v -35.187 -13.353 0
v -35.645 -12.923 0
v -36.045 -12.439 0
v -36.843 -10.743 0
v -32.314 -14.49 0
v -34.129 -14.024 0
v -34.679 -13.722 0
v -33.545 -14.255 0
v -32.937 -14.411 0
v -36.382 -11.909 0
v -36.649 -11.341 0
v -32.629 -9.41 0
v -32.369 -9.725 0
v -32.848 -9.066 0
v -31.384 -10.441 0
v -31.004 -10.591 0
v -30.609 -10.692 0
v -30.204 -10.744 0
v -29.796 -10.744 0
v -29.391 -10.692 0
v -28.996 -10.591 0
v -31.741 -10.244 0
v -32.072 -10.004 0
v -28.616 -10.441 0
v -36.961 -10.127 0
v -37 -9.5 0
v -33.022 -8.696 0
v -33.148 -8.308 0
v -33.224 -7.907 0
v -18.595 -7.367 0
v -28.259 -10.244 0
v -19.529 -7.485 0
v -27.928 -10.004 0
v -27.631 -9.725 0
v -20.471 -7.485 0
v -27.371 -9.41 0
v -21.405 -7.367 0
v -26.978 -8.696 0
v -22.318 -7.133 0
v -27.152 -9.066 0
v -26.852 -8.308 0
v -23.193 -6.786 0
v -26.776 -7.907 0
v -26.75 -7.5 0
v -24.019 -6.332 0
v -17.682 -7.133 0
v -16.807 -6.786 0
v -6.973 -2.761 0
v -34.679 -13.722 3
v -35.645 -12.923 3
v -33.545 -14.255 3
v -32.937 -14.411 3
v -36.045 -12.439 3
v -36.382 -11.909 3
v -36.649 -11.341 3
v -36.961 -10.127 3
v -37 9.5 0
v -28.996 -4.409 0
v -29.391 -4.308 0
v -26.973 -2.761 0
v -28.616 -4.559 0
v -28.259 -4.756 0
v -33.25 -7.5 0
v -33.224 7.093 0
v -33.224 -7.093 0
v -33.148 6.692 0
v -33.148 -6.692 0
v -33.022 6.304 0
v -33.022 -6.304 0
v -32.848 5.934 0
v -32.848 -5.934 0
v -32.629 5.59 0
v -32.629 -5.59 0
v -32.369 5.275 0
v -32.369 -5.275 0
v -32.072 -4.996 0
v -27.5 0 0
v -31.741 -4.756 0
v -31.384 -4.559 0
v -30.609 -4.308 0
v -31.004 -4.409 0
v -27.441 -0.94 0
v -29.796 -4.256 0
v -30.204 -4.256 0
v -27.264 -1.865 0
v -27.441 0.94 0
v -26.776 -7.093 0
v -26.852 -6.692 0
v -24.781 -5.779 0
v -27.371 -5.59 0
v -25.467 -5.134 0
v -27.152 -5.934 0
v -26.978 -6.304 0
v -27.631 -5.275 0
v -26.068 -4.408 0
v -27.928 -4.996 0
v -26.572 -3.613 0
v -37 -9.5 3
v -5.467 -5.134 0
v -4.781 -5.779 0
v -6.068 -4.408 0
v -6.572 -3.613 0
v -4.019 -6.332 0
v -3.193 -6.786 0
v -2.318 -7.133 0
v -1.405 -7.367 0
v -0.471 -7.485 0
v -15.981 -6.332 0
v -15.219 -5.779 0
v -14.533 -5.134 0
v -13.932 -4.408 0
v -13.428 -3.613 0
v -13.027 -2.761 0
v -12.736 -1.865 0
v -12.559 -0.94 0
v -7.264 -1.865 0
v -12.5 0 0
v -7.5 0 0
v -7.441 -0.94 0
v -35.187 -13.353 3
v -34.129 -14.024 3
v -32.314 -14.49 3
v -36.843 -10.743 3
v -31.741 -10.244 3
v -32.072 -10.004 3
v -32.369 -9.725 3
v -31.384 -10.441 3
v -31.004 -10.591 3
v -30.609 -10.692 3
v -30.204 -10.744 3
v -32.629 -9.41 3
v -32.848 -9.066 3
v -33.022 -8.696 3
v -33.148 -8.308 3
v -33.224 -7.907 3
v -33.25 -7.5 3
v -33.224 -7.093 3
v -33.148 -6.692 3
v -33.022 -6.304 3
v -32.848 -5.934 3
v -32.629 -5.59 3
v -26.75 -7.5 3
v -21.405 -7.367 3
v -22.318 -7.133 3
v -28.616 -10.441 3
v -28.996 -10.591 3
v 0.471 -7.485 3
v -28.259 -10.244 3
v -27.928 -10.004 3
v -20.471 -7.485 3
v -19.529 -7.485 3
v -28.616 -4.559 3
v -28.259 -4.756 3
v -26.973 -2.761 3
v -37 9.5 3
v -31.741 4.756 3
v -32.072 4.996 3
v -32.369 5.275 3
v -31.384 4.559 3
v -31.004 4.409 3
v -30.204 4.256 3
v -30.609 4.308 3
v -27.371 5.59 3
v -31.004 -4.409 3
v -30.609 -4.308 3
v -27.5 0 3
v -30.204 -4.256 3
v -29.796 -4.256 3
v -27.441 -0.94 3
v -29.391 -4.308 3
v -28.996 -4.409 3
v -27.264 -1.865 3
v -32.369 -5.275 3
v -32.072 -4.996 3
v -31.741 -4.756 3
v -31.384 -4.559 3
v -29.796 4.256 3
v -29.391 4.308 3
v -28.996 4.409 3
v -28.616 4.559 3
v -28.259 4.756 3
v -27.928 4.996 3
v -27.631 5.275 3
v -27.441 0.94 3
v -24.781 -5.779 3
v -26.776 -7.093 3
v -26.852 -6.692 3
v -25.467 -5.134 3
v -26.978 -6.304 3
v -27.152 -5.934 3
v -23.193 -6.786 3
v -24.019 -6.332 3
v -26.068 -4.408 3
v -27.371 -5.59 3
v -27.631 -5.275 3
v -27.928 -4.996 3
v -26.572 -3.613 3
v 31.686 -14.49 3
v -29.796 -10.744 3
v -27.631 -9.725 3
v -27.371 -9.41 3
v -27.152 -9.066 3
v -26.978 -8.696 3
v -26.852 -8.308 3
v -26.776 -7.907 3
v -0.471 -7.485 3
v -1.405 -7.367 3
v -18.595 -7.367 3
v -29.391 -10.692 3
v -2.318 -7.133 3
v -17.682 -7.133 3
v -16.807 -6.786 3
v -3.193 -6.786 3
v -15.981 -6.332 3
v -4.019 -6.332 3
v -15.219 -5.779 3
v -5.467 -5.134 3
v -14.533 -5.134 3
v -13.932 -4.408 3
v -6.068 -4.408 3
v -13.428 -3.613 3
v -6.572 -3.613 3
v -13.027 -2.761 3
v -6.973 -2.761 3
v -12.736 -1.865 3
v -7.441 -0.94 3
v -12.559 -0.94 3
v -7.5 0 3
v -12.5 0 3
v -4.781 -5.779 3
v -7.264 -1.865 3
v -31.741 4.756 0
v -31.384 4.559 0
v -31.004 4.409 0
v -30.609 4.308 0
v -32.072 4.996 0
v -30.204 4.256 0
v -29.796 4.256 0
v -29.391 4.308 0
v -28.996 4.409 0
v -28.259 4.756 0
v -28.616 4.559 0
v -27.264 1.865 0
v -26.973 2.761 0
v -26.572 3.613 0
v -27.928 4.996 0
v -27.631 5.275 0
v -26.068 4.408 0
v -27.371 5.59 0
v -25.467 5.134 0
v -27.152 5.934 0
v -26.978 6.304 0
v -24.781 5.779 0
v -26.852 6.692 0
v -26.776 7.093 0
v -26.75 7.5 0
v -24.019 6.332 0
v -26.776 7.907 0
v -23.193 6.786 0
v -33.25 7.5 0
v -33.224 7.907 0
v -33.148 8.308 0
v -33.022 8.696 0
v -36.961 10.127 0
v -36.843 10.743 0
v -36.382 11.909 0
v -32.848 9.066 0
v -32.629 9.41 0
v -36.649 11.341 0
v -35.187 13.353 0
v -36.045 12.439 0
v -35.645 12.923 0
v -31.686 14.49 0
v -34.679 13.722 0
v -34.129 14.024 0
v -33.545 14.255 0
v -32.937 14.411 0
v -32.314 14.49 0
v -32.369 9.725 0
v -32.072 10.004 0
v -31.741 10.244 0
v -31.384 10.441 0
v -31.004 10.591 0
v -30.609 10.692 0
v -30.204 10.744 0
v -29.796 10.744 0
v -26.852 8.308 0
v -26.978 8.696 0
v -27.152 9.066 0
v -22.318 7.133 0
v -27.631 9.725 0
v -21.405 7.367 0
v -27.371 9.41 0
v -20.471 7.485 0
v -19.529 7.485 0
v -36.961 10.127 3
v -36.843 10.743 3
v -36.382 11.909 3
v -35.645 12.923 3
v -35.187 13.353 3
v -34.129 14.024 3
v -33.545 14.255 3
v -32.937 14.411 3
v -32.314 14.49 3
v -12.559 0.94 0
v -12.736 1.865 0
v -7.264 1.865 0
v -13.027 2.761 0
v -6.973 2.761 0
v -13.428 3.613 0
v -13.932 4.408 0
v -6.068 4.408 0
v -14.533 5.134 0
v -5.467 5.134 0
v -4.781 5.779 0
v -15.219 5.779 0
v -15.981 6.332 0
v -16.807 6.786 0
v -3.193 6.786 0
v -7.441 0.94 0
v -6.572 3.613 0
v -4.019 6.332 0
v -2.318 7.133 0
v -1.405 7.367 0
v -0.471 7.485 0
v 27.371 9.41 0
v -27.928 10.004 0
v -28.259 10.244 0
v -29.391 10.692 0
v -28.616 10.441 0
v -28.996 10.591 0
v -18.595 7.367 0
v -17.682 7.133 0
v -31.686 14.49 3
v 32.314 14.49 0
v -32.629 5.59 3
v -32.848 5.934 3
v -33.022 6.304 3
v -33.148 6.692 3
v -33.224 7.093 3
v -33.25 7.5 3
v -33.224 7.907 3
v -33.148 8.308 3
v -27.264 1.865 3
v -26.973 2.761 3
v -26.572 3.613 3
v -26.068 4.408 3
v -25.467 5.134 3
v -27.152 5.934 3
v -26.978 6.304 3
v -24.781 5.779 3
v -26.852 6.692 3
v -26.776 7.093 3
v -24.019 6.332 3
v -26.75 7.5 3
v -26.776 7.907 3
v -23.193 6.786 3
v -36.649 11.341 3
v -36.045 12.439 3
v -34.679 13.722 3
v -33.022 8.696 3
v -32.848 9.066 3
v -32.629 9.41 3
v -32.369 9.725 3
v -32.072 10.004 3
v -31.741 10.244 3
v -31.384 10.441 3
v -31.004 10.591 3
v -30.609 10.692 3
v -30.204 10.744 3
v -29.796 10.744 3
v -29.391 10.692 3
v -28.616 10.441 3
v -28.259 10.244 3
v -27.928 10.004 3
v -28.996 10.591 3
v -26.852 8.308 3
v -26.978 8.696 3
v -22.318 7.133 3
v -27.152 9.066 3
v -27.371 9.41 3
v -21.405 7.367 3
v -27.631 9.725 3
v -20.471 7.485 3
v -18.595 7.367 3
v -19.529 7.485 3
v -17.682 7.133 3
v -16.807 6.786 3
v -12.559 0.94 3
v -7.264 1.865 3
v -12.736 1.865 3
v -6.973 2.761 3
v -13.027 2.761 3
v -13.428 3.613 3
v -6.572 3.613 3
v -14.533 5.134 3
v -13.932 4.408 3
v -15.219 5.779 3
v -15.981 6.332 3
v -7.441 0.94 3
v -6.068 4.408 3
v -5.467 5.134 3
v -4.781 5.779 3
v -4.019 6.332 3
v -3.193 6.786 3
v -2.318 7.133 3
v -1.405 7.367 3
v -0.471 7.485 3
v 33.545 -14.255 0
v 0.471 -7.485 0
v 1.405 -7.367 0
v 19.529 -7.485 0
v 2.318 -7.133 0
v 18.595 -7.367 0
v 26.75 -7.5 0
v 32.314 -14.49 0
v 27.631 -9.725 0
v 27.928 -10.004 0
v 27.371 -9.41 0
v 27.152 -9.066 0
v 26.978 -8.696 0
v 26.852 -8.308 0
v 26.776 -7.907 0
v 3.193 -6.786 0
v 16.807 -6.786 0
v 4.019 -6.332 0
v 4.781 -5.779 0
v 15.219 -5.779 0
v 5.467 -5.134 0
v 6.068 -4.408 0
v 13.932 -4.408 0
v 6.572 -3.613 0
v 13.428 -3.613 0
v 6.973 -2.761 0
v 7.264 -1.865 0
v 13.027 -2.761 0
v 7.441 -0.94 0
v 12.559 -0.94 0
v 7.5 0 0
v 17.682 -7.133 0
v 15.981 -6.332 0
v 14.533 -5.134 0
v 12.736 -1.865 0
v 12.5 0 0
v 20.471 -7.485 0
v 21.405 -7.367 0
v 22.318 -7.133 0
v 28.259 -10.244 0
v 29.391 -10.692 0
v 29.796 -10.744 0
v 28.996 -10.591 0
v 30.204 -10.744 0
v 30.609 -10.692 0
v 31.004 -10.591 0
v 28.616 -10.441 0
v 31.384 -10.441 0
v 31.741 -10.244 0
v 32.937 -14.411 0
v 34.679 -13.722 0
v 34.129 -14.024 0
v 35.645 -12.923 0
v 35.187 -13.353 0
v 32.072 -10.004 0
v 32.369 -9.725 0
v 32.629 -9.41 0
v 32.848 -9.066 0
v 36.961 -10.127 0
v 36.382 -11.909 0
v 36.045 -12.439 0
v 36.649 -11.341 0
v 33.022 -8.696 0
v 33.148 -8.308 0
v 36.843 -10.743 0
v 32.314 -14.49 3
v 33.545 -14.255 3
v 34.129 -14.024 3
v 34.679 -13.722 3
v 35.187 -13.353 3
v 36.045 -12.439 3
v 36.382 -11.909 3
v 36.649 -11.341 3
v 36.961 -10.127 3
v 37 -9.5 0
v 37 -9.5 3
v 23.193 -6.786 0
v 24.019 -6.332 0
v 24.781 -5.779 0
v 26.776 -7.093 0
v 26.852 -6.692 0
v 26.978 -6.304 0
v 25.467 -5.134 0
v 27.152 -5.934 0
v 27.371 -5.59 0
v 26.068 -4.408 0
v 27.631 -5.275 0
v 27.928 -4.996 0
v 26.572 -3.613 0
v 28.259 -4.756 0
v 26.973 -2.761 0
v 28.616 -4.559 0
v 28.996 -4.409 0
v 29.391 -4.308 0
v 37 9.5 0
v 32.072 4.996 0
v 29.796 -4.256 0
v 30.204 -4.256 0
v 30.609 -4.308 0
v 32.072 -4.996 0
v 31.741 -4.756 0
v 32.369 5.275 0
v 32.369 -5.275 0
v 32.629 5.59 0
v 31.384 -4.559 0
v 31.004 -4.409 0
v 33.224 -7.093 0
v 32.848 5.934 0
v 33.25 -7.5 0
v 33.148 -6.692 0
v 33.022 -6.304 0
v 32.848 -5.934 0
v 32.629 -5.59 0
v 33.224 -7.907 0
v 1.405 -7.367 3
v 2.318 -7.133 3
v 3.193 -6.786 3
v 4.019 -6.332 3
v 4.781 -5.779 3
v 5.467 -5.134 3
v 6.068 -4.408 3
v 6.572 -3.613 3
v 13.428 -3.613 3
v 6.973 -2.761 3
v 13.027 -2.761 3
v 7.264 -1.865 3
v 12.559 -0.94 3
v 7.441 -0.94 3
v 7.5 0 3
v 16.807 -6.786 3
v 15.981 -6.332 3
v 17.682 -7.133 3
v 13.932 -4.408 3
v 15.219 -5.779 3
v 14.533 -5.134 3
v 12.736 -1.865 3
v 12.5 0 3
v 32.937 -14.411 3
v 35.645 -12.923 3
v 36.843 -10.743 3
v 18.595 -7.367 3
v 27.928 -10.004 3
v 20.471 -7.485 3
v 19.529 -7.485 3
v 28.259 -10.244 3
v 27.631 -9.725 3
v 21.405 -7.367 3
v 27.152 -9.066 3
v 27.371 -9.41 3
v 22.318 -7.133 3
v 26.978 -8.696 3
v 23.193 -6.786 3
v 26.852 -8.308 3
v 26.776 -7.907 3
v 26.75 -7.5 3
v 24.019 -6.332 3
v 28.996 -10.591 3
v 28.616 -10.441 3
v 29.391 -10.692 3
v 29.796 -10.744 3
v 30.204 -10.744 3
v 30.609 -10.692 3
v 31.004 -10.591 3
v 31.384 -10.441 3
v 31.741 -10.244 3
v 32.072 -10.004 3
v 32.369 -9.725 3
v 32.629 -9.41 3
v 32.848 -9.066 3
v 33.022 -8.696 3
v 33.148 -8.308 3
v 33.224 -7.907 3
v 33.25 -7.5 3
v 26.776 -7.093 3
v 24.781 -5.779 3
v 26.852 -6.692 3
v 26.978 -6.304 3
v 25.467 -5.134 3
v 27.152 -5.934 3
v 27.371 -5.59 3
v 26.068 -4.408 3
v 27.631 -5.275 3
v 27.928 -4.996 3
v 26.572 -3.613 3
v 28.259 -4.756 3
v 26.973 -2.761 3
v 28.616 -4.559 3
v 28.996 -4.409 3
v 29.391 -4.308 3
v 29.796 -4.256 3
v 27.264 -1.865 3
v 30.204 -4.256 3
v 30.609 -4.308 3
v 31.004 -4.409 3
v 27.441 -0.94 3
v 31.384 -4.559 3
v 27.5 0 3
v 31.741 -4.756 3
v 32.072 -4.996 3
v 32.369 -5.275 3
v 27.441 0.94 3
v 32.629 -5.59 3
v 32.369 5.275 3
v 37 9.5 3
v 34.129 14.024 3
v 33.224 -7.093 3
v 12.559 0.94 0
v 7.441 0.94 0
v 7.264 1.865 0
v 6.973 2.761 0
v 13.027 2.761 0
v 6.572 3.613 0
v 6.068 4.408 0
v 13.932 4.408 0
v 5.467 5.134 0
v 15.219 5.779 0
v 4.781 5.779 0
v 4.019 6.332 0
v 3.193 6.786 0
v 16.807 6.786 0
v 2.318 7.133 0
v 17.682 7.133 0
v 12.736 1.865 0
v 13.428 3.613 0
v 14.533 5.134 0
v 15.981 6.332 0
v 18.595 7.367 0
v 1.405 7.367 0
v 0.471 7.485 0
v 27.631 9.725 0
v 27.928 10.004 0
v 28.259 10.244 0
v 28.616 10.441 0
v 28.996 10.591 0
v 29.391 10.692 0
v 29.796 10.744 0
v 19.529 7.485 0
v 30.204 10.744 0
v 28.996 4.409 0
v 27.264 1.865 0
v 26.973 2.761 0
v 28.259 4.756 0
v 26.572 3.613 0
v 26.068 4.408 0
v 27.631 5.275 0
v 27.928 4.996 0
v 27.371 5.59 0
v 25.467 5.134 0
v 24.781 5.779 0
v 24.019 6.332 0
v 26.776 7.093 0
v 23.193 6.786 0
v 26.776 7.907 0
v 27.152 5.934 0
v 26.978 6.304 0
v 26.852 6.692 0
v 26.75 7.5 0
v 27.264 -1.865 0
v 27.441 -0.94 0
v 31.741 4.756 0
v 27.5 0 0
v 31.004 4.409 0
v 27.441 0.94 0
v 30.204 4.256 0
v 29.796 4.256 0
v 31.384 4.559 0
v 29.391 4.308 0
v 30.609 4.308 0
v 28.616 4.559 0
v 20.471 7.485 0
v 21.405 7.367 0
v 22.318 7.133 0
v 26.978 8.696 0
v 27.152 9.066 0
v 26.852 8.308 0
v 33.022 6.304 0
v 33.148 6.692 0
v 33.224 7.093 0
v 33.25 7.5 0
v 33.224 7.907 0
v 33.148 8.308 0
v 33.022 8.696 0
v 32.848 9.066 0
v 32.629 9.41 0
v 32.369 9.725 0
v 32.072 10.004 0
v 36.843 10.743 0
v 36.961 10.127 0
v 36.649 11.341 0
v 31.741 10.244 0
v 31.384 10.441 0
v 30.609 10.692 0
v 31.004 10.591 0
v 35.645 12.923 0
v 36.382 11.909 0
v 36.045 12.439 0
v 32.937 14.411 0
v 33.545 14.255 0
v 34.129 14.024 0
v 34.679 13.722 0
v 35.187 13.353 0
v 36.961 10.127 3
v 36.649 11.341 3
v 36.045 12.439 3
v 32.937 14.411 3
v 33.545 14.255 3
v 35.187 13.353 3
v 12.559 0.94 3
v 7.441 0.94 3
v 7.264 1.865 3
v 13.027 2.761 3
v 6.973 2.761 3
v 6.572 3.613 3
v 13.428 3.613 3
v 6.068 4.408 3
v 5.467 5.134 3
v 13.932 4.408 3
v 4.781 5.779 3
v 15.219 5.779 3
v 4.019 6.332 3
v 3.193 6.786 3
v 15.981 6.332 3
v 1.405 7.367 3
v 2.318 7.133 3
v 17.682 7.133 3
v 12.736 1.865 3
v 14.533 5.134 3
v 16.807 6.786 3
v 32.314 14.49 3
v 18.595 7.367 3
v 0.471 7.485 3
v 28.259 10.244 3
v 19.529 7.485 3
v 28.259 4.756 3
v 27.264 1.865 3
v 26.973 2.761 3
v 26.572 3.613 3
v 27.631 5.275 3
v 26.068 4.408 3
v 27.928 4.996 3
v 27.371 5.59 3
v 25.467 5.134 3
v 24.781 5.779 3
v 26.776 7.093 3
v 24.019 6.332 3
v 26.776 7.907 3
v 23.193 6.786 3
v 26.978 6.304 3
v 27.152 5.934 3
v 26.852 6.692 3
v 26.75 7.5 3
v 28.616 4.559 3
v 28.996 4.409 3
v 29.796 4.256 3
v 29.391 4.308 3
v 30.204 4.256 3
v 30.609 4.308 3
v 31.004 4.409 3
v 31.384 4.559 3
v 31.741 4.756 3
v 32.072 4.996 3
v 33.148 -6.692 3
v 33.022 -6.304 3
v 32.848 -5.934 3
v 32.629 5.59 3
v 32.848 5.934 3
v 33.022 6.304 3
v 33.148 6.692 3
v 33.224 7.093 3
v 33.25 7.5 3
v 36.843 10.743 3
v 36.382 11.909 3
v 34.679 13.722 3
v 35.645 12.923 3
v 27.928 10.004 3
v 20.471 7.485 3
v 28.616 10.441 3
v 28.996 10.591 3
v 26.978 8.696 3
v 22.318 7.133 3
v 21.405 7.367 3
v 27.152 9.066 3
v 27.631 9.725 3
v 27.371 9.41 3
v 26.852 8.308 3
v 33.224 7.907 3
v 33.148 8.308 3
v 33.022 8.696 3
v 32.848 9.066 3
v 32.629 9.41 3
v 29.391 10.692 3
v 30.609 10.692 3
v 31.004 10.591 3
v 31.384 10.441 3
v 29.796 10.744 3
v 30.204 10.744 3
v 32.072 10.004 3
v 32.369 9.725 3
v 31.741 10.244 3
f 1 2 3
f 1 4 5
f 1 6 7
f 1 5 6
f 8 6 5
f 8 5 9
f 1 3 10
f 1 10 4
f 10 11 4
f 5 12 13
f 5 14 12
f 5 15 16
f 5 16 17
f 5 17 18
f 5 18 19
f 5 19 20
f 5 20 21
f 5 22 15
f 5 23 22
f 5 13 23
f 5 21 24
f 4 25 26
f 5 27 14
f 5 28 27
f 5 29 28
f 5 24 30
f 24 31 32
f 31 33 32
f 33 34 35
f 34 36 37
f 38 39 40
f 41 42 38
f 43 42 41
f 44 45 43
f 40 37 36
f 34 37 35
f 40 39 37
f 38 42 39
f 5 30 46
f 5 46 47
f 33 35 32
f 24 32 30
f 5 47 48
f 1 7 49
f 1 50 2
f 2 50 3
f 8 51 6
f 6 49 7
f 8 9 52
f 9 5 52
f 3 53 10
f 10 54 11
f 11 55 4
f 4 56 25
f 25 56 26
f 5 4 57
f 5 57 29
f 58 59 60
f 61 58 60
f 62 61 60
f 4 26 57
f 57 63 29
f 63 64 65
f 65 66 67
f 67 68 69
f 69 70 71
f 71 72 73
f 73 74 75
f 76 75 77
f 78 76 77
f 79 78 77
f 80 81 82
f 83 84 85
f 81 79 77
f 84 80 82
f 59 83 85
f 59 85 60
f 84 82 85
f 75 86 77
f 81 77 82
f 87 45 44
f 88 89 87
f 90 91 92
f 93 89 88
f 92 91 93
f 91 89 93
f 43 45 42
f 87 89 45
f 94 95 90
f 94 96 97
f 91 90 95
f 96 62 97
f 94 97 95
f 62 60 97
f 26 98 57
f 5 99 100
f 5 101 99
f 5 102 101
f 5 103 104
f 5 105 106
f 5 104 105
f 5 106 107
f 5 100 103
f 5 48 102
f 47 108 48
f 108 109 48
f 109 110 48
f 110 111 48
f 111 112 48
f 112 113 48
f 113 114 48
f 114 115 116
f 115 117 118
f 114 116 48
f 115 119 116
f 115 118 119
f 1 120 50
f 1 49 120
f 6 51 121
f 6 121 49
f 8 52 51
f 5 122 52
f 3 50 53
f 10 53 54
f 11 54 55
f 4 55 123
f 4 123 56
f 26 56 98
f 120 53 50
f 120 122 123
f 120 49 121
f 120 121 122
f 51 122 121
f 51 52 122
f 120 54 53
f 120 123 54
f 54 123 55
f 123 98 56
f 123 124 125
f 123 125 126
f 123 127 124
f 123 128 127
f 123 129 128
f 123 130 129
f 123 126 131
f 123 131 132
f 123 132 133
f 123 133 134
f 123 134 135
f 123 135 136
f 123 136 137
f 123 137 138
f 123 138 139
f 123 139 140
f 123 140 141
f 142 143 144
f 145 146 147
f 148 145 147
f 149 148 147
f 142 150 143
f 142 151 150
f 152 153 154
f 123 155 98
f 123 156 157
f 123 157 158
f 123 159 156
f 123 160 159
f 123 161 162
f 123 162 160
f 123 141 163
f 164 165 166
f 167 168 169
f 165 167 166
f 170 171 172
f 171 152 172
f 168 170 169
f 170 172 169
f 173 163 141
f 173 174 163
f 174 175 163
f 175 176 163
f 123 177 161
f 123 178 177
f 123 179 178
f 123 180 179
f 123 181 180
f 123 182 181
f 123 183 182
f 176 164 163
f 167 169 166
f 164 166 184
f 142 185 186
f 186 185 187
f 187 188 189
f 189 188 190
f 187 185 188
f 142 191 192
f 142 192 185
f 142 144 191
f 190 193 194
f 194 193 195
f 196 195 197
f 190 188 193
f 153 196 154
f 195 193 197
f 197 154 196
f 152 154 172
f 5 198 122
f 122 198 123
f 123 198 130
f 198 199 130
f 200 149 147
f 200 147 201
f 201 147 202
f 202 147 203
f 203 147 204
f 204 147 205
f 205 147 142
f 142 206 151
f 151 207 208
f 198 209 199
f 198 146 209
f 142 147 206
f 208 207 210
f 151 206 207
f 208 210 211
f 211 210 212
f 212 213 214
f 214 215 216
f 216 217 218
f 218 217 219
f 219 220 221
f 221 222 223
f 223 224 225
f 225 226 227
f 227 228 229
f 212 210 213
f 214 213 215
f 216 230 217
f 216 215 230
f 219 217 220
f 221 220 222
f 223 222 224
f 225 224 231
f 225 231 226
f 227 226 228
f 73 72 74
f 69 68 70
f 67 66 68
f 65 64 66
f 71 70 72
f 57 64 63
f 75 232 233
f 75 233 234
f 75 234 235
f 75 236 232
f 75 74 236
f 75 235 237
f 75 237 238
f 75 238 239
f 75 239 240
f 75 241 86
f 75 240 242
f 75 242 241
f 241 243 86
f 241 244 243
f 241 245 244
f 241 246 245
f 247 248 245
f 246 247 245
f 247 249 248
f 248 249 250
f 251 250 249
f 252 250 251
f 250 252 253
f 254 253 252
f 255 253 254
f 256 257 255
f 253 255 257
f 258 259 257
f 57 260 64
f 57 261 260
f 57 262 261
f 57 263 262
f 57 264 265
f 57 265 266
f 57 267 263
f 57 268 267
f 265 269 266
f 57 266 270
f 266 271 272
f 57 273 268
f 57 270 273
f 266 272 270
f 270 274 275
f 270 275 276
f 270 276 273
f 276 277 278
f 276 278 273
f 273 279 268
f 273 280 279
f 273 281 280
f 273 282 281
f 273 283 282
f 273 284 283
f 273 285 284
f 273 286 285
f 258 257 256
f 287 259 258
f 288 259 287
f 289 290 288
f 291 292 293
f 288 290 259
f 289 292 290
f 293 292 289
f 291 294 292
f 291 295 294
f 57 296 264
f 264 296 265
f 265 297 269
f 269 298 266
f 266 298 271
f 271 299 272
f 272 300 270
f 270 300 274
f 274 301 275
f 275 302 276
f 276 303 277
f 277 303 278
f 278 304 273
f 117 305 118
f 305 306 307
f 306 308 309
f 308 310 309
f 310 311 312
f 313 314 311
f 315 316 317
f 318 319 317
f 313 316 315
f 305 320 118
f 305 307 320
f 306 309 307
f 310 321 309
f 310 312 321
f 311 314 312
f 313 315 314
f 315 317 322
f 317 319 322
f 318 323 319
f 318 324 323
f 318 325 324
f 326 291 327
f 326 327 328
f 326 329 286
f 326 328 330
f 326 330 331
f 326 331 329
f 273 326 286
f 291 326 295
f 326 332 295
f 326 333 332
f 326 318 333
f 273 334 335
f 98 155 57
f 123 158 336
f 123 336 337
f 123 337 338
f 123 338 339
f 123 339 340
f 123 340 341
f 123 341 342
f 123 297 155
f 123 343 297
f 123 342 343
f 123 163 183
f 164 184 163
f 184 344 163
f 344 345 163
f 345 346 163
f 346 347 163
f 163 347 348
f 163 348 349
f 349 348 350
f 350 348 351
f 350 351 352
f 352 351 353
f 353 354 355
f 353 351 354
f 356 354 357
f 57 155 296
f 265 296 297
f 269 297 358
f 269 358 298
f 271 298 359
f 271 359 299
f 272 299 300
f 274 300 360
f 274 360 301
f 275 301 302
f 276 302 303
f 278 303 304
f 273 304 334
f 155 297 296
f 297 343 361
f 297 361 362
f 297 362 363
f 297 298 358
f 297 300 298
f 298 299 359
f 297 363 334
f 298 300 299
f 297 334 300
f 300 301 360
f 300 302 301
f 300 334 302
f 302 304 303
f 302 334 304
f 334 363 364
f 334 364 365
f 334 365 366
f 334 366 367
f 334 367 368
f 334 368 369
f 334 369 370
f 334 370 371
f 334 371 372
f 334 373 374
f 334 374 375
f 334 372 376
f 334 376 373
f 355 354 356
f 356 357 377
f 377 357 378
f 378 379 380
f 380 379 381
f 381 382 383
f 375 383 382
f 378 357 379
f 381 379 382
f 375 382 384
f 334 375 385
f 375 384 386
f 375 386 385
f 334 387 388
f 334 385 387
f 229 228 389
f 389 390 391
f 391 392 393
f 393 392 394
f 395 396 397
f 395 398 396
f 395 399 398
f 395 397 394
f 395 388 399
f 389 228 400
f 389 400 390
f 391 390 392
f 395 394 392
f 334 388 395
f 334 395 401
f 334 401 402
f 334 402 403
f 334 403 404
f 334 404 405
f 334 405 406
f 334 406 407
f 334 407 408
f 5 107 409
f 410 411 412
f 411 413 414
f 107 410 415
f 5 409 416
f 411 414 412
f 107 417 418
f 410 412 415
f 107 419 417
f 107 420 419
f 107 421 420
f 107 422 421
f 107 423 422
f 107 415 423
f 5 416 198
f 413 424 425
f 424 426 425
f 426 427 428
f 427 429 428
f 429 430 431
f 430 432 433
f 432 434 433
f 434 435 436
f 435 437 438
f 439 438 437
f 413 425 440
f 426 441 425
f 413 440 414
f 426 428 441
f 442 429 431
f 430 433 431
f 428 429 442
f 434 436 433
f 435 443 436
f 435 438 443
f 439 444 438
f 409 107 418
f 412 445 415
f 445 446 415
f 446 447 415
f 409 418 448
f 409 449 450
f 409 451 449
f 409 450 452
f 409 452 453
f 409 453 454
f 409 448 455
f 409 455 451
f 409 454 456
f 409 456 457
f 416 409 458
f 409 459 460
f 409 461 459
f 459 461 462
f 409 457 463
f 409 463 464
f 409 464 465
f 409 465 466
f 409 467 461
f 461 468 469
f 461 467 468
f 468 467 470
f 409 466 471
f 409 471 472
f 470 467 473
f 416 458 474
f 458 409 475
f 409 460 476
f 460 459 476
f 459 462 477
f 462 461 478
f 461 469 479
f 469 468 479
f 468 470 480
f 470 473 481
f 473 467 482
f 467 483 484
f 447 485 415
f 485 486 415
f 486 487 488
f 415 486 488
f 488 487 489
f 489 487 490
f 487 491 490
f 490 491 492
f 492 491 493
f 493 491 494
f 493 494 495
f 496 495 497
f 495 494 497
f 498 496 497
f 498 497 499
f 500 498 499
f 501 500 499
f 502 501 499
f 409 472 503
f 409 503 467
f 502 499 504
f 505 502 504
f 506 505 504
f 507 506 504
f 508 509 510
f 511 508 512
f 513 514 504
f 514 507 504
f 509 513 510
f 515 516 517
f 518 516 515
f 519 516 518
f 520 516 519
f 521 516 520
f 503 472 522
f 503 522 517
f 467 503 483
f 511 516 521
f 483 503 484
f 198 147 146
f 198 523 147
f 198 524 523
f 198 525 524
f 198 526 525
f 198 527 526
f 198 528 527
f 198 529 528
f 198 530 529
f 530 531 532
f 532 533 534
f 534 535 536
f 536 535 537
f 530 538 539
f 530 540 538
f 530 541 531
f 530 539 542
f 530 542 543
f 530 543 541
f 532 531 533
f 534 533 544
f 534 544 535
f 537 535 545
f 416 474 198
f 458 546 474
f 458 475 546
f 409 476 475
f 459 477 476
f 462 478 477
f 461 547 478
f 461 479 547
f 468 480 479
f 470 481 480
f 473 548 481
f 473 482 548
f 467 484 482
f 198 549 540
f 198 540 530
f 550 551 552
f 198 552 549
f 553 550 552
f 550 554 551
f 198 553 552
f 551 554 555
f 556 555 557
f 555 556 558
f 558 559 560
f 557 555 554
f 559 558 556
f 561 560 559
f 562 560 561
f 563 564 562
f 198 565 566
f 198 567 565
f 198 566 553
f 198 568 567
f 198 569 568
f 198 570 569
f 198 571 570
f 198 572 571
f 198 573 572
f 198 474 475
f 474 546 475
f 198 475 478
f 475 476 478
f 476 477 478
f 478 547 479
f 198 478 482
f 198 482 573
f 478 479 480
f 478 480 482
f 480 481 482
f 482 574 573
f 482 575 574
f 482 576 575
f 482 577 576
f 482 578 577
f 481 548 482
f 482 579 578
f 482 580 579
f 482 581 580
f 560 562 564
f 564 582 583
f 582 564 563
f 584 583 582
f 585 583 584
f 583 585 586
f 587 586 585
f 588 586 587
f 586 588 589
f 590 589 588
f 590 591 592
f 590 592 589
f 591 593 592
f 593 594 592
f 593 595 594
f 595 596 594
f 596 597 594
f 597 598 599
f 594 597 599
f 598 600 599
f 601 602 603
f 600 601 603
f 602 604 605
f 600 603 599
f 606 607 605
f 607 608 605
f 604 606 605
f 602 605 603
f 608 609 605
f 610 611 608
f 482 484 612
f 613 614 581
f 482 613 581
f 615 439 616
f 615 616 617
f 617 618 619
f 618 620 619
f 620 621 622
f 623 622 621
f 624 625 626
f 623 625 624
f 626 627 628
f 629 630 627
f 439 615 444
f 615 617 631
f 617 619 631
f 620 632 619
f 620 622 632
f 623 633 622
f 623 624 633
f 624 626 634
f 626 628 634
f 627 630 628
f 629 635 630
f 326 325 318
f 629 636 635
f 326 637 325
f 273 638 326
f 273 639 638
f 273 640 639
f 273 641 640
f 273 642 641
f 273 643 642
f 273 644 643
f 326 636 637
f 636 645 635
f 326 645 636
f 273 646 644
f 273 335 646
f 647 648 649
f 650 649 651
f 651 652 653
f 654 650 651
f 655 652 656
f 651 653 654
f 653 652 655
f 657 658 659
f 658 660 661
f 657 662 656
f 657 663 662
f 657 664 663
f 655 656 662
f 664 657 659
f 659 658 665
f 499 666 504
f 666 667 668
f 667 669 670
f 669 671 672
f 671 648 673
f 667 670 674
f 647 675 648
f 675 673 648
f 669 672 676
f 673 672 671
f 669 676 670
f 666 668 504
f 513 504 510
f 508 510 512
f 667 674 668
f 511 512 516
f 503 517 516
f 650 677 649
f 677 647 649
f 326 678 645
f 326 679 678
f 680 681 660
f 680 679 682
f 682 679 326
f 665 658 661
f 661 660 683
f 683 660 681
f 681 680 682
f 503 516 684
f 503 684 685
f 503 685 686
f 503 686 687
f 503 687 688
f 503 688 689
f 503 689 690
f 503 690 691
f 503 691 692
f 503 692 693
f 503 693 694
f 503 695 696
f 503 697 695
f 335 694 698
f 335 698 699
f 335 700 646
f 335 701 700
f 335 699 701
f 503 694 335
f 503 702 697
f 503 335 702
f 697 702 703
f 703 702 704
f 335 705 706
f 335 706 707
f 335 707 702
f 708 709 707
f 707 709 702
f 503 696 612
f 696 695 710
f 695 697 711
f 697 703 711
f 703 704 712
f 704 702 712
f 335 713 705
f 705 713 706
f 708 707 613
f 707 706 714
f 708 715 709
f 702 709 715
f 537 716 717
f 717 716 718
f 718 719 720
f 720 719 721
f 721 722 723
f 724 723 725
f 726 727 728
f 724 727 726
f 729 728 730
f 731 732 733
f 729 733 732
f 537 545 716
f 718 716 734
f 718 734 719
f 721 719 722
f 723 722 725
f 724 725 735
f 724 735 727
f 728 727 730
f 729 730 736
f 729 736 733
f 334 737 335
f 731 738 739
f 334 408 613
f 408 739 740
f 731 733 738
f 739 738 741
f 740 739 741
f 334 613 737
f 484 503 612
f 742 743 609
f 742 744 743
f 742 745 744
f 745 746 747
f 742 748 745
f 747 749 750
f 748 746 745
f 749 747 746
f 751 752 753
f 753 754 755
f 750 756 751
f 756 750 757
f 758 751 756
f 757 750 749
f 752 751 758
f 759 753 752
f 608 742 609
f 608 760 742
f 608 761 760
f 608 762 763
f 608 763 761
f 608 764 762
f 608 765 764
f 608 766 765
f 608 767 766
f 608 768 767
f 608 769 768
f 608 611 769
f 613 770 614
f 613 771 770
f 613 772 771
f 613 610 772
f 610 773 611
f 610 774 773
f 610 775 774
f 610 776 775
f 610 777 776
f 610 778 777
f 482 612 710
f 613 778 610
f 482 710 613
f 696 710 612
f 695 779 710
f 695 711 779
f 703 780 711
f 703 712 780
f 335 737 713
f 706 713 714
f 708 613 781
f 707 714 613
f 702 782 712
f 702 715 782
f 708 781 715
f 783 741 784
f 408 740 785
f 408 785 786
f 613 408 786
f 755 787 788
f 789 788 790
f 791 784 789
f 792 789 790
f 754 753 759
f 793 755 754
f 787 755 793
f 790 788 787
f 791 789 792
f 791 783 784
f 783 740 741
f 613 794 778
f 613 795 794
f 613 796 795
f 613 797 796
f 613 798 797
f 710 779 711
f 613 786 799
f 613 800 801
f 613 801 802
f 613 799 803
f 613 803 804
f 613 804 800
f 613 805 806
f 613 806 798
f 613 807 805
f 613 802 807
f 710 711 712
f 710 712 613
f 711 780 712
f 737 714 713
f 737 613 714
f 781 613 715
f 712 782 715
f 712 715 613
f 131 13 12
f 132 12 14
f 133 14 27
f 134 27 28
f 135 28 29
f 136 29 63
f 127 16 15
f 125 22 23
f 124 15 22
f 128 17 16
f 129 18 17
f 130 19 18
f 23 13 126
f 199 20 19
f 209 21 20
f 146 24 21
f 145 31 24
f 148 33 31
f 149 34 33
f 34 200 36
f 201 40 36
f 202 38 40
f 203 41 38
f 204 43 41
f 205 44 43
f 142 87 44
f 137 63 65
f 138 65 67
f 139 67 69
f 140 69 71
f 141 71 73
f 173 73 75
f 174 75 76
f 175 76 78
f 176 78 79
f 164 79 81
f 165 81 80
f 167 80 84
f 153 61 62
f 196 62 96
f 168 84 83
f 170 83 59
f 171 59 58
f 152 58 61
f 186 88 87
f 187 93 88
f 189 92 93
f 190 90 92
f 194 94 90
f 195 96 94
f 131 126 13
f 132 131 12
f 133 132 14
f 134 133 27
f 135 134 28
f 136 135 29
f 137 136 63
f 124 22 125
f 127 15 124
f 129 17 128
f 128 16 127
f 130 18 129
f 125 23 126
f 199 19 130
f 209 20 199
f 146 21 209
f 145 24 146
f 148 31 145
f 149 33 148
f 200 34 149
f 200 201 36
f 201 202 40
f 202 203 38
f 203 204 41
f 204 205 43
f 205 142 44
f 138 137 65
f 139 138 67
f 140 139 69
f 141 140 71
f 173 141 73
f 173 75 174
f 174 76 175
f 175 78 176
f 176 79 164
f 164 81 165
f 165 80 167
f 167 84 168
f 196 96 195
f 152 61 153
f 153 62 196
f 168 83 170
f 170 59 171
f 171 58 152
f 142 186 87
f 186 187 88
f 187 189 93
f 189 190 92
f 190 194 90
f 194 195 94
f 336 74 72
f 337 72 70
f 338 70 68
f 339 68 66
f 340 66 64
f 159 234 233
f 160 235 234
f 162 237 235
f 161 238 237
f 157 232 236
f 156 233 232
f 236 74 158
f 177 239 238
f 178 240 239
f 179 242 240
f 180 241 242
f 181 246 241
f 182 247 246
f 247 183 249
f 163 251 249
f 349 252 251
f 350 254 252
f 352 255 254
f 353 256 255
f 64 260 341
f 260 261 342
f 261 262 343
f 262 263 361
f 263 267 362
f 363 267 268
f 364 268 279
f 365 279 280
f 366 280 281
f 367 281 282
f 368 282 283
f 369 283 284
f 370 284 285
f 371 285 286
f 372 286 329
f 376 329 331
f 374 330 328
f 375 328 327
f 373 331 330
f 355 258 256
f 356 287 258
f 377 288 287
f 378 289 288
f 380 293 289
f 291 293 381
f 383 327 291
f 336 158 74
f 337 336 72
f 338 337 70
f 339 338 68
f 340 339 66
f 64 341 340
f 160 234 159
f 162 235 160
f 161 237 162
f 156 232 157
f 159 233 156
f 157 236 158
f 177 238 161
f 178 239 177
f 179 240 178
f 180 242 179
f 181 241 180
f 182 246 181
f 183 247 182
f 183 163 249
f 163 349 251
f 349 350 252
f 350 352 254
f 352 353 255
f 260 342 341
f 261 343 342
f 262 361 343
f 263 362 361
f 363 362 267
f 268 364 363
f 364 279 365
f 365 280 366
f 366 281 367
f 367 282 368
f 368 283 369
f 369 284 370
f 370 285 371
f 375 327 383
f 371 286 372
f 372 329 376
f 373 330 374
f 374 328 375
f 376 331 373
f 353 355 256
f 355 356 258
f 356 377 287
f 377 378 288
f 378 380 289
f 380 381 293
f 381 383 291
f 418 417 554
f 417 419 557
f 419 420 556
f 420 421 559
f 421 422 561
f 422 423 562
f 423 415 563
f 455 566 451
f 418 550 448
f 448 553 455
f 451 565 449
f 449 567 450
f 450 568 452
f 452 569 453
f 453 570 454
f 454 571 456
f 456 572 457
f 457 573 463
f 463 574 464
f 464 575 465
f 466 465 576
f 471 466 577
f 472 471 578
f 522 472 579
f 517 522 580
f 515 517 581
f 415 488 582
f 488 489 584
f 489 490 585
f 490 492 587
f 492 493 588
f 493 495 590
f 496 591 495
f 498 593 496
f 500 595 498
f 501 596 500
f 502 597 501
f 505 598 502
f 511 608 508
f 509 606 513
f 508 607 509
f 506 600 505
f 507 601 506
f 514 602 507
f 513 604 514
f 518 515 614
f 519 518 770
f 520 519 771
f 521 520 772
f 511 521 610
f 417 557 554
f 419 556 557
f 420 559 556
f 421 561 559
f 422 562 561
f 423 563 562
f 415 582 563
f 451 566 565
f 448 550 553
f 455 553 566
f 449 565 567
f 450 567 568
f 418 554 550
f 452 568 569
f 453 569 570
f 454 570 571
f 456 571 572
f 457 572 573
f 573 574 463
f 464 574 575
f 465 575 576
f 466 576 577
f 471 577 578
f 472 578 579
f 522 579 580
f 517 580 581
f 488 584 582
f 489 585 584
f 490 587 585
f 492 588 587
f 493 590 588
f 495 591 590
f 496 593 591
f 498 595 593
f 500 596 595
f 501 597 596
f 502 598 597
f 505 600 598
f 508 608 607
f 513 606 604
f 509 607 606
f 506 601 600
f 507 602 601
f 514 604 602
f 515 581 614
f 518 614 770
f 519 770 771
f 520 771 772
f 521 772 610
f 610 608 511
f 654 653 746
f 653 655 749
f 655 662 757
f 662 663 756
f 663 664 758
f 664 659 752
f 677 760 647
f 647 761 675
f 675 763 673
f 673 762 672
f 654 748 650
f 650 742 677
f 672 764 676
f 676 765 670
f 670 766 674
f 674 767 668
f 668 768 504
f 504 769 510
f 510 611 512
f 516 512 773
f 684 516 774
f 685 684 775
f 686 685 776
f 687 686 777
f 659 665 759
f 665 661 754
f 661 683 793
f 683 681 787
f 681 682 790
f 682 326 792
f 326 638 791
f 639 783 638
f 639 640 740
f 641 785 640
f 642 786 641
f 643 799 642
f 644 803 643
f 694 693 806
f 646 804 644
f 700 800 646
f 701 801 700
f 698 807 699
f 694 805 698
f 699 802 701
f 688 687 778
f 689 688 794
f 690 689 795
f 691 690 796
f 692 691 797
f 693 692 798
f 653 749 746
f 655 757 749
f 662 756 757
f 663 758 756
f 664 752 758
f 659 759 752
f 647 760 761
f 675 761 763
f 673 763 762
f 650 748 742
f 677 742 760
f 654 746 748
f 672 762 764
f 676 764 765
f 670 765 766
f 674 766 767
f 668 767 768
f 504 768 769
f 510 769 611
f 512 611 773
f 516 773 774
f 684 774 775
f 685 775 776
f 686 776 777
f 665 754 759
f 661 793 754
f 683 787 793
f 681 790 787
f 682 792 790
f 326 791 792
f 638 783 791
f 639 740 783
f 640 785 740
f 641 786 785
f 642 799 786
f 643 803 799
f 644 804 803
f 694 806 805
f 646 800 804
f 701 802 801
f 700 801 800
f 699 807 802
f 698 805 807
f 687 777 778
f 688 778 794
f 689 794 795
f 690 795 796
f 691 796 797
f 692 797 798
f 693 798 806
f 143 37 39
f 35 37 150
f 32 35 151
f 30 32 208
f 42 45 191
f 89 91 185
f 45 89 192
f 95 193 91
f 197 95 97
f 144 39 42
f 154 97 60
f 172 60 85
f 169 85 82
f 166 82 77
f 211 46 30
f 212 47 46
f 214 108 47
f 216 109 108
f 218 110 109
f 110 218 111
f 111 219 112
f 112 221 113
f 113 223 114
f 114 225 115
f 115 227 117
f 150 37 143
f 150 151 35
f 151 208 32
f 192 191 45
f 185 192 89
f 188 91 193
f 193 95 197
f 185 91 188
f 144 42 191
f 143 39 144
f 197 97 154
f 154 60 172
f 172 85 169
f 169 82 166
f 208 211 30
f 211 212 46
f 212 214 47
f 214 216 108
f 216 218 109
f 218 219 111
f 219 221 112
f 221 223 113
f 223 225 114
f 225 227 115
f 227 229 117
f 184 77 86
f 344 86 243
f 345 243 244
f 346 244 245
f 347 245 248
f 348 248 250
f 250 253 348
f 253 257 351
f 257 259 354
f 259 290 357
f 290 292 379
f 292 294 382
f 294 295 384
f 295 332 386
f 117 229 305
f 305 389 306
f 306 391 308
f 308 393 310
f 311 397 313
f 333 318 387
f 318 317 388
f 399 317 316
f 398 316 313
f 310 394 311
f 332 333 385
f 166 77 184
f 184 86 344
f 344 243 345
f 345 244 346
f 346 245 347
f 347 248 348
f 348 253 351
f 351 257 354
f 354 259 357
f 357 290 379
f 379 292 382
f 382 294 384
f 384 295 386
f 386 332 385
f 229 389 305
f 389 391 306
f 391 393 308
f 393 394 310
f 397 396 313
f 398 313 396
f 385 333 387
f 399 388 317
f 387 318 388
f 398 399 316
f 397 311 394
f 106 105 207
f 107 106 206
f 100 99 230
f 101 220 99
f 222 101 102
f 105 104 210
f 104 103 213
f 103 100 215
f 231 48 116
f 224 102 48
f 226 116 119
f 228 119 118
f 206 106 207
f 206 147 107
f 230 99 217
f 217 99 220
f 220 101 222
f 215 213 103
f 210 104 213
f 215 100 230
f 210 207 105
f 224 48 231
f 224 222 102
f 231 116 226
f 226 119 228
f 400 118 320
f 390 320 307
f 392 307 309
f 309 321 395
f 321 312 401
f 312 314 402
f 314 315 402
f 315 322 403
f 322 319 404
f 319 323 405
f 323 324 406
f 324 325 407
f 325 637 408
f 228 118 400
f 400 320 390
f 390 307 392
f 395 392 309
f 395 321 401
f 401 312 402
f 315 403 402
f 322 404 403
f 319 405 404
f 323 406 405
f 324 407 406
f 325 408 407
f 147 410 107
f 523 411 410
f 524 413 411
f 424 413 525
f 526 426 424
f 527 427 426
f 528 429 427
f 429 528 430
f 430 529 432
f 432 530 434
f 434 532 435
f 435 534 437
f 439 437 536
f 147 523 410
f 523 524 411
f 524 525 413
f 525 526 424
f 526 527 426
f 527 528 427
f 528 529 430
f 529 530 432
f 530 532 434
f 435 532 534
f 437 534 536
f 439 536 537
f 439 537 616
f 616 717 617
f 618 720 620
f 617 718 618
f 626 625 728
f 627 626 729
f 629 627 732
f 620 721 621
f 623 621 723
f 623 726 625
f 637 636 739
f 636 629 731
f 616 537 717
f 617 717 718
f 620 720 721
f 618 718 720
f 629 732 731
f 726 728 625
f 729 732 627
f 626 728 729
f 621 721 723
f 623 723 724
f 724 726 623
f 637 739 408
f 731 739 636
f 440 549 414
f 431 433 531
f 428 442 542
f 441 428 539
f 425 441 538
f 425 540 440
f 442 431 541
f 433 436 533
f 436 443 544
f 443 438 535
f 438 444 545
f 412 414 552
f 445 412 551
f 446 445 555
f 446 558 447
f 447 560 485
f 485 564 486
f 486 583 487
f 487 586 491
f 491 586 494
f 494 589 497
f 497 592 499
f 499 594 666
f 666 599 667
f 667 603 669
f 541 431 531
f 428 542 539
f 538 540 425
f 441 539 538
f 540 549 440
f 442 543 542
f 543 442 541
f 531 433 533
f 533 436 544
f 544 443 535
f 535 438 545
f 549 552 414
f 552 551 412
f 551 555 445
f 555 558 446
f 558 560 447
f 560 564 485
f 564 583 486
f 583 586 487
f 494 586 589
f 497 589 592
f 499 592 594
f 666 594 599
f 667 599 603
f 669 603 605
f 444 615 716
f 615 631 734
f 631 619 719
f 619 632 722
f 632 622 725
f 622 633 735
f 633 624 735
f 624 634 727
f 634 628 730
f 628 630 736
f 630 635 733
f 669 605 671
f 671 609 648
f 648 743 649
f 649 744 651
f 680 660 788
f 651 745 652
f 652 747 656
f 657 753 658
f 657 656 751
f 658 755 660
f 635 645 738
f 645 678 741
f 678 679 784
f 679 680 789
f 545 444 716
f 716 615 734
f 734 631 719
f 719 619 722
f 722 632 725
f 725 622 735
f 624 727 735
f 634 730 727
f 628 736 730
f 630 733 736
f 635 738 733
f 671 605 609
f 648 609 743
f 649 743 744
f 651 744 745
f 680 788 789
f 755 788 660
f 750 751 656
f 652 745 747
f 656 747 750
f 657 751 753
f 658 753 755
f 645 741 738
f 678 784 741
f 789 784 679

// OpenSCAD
$fn = 50;

difference() {
	union() {
		hull() {
			translate(v = [-32.0, 9.5, 0]) {
				cylinder(h = 3, r = 5);
			}
			translate(v = [32.0, 9.5, 0]) {
				cylinder(h = 3, r = 5);
			}
			translate(v = [-32.0, -9.5, 0]) {
				cylinder(h = 3, r = 5);
			}
			translate(v = [32.0, -9.5, 0]) {
				cylinder(h = 3, r = 5);
			}
		}
	}
	union() {
		translate(v = [-30.0, -7.5, -100.0]) {
			cylinder(h = 200, r = 3.25);
		}
		translate(v = [-30.0, 7.5, -100.0]) {
			cylinder(h = 200, r = 3.25);
		}
		translate(v = [30.0, -7.5, -100.0]) {
			cylinder(h = 200, r = 3.25);
		}
		translate(v = [30.0, 7.5, -100.0]) {
			cylinder(h = 200, r = 3.25);
		}
		translate(v = [-30.0, -7.5, -100.0]) {
			cylinder(h = 200, r = 1.8);
		}
		translate(v = [-30.0, 7.5, -100.0]) {
			cylinder(h = 200, r = 1.8);
		}
		translate(v = [30.0, -7.5, -100.0]) {
			cylinder(h = 200, r = 1.8);
		}
		translate(v = [30.0, 7.5, -100.0]) {
			cylinder(h = 200, r = 1.8);
		}
		translate(v = [-20.0, 0, 0.0]) {
			cylinder(h = 3, r = 7.5);
		}
		cylinder(h = 3, r = 7.5);
		translate(v = [20.0, 0, 0.0]) {
			cylinder(h = 3, r = 7.5);
		}
	}
}
